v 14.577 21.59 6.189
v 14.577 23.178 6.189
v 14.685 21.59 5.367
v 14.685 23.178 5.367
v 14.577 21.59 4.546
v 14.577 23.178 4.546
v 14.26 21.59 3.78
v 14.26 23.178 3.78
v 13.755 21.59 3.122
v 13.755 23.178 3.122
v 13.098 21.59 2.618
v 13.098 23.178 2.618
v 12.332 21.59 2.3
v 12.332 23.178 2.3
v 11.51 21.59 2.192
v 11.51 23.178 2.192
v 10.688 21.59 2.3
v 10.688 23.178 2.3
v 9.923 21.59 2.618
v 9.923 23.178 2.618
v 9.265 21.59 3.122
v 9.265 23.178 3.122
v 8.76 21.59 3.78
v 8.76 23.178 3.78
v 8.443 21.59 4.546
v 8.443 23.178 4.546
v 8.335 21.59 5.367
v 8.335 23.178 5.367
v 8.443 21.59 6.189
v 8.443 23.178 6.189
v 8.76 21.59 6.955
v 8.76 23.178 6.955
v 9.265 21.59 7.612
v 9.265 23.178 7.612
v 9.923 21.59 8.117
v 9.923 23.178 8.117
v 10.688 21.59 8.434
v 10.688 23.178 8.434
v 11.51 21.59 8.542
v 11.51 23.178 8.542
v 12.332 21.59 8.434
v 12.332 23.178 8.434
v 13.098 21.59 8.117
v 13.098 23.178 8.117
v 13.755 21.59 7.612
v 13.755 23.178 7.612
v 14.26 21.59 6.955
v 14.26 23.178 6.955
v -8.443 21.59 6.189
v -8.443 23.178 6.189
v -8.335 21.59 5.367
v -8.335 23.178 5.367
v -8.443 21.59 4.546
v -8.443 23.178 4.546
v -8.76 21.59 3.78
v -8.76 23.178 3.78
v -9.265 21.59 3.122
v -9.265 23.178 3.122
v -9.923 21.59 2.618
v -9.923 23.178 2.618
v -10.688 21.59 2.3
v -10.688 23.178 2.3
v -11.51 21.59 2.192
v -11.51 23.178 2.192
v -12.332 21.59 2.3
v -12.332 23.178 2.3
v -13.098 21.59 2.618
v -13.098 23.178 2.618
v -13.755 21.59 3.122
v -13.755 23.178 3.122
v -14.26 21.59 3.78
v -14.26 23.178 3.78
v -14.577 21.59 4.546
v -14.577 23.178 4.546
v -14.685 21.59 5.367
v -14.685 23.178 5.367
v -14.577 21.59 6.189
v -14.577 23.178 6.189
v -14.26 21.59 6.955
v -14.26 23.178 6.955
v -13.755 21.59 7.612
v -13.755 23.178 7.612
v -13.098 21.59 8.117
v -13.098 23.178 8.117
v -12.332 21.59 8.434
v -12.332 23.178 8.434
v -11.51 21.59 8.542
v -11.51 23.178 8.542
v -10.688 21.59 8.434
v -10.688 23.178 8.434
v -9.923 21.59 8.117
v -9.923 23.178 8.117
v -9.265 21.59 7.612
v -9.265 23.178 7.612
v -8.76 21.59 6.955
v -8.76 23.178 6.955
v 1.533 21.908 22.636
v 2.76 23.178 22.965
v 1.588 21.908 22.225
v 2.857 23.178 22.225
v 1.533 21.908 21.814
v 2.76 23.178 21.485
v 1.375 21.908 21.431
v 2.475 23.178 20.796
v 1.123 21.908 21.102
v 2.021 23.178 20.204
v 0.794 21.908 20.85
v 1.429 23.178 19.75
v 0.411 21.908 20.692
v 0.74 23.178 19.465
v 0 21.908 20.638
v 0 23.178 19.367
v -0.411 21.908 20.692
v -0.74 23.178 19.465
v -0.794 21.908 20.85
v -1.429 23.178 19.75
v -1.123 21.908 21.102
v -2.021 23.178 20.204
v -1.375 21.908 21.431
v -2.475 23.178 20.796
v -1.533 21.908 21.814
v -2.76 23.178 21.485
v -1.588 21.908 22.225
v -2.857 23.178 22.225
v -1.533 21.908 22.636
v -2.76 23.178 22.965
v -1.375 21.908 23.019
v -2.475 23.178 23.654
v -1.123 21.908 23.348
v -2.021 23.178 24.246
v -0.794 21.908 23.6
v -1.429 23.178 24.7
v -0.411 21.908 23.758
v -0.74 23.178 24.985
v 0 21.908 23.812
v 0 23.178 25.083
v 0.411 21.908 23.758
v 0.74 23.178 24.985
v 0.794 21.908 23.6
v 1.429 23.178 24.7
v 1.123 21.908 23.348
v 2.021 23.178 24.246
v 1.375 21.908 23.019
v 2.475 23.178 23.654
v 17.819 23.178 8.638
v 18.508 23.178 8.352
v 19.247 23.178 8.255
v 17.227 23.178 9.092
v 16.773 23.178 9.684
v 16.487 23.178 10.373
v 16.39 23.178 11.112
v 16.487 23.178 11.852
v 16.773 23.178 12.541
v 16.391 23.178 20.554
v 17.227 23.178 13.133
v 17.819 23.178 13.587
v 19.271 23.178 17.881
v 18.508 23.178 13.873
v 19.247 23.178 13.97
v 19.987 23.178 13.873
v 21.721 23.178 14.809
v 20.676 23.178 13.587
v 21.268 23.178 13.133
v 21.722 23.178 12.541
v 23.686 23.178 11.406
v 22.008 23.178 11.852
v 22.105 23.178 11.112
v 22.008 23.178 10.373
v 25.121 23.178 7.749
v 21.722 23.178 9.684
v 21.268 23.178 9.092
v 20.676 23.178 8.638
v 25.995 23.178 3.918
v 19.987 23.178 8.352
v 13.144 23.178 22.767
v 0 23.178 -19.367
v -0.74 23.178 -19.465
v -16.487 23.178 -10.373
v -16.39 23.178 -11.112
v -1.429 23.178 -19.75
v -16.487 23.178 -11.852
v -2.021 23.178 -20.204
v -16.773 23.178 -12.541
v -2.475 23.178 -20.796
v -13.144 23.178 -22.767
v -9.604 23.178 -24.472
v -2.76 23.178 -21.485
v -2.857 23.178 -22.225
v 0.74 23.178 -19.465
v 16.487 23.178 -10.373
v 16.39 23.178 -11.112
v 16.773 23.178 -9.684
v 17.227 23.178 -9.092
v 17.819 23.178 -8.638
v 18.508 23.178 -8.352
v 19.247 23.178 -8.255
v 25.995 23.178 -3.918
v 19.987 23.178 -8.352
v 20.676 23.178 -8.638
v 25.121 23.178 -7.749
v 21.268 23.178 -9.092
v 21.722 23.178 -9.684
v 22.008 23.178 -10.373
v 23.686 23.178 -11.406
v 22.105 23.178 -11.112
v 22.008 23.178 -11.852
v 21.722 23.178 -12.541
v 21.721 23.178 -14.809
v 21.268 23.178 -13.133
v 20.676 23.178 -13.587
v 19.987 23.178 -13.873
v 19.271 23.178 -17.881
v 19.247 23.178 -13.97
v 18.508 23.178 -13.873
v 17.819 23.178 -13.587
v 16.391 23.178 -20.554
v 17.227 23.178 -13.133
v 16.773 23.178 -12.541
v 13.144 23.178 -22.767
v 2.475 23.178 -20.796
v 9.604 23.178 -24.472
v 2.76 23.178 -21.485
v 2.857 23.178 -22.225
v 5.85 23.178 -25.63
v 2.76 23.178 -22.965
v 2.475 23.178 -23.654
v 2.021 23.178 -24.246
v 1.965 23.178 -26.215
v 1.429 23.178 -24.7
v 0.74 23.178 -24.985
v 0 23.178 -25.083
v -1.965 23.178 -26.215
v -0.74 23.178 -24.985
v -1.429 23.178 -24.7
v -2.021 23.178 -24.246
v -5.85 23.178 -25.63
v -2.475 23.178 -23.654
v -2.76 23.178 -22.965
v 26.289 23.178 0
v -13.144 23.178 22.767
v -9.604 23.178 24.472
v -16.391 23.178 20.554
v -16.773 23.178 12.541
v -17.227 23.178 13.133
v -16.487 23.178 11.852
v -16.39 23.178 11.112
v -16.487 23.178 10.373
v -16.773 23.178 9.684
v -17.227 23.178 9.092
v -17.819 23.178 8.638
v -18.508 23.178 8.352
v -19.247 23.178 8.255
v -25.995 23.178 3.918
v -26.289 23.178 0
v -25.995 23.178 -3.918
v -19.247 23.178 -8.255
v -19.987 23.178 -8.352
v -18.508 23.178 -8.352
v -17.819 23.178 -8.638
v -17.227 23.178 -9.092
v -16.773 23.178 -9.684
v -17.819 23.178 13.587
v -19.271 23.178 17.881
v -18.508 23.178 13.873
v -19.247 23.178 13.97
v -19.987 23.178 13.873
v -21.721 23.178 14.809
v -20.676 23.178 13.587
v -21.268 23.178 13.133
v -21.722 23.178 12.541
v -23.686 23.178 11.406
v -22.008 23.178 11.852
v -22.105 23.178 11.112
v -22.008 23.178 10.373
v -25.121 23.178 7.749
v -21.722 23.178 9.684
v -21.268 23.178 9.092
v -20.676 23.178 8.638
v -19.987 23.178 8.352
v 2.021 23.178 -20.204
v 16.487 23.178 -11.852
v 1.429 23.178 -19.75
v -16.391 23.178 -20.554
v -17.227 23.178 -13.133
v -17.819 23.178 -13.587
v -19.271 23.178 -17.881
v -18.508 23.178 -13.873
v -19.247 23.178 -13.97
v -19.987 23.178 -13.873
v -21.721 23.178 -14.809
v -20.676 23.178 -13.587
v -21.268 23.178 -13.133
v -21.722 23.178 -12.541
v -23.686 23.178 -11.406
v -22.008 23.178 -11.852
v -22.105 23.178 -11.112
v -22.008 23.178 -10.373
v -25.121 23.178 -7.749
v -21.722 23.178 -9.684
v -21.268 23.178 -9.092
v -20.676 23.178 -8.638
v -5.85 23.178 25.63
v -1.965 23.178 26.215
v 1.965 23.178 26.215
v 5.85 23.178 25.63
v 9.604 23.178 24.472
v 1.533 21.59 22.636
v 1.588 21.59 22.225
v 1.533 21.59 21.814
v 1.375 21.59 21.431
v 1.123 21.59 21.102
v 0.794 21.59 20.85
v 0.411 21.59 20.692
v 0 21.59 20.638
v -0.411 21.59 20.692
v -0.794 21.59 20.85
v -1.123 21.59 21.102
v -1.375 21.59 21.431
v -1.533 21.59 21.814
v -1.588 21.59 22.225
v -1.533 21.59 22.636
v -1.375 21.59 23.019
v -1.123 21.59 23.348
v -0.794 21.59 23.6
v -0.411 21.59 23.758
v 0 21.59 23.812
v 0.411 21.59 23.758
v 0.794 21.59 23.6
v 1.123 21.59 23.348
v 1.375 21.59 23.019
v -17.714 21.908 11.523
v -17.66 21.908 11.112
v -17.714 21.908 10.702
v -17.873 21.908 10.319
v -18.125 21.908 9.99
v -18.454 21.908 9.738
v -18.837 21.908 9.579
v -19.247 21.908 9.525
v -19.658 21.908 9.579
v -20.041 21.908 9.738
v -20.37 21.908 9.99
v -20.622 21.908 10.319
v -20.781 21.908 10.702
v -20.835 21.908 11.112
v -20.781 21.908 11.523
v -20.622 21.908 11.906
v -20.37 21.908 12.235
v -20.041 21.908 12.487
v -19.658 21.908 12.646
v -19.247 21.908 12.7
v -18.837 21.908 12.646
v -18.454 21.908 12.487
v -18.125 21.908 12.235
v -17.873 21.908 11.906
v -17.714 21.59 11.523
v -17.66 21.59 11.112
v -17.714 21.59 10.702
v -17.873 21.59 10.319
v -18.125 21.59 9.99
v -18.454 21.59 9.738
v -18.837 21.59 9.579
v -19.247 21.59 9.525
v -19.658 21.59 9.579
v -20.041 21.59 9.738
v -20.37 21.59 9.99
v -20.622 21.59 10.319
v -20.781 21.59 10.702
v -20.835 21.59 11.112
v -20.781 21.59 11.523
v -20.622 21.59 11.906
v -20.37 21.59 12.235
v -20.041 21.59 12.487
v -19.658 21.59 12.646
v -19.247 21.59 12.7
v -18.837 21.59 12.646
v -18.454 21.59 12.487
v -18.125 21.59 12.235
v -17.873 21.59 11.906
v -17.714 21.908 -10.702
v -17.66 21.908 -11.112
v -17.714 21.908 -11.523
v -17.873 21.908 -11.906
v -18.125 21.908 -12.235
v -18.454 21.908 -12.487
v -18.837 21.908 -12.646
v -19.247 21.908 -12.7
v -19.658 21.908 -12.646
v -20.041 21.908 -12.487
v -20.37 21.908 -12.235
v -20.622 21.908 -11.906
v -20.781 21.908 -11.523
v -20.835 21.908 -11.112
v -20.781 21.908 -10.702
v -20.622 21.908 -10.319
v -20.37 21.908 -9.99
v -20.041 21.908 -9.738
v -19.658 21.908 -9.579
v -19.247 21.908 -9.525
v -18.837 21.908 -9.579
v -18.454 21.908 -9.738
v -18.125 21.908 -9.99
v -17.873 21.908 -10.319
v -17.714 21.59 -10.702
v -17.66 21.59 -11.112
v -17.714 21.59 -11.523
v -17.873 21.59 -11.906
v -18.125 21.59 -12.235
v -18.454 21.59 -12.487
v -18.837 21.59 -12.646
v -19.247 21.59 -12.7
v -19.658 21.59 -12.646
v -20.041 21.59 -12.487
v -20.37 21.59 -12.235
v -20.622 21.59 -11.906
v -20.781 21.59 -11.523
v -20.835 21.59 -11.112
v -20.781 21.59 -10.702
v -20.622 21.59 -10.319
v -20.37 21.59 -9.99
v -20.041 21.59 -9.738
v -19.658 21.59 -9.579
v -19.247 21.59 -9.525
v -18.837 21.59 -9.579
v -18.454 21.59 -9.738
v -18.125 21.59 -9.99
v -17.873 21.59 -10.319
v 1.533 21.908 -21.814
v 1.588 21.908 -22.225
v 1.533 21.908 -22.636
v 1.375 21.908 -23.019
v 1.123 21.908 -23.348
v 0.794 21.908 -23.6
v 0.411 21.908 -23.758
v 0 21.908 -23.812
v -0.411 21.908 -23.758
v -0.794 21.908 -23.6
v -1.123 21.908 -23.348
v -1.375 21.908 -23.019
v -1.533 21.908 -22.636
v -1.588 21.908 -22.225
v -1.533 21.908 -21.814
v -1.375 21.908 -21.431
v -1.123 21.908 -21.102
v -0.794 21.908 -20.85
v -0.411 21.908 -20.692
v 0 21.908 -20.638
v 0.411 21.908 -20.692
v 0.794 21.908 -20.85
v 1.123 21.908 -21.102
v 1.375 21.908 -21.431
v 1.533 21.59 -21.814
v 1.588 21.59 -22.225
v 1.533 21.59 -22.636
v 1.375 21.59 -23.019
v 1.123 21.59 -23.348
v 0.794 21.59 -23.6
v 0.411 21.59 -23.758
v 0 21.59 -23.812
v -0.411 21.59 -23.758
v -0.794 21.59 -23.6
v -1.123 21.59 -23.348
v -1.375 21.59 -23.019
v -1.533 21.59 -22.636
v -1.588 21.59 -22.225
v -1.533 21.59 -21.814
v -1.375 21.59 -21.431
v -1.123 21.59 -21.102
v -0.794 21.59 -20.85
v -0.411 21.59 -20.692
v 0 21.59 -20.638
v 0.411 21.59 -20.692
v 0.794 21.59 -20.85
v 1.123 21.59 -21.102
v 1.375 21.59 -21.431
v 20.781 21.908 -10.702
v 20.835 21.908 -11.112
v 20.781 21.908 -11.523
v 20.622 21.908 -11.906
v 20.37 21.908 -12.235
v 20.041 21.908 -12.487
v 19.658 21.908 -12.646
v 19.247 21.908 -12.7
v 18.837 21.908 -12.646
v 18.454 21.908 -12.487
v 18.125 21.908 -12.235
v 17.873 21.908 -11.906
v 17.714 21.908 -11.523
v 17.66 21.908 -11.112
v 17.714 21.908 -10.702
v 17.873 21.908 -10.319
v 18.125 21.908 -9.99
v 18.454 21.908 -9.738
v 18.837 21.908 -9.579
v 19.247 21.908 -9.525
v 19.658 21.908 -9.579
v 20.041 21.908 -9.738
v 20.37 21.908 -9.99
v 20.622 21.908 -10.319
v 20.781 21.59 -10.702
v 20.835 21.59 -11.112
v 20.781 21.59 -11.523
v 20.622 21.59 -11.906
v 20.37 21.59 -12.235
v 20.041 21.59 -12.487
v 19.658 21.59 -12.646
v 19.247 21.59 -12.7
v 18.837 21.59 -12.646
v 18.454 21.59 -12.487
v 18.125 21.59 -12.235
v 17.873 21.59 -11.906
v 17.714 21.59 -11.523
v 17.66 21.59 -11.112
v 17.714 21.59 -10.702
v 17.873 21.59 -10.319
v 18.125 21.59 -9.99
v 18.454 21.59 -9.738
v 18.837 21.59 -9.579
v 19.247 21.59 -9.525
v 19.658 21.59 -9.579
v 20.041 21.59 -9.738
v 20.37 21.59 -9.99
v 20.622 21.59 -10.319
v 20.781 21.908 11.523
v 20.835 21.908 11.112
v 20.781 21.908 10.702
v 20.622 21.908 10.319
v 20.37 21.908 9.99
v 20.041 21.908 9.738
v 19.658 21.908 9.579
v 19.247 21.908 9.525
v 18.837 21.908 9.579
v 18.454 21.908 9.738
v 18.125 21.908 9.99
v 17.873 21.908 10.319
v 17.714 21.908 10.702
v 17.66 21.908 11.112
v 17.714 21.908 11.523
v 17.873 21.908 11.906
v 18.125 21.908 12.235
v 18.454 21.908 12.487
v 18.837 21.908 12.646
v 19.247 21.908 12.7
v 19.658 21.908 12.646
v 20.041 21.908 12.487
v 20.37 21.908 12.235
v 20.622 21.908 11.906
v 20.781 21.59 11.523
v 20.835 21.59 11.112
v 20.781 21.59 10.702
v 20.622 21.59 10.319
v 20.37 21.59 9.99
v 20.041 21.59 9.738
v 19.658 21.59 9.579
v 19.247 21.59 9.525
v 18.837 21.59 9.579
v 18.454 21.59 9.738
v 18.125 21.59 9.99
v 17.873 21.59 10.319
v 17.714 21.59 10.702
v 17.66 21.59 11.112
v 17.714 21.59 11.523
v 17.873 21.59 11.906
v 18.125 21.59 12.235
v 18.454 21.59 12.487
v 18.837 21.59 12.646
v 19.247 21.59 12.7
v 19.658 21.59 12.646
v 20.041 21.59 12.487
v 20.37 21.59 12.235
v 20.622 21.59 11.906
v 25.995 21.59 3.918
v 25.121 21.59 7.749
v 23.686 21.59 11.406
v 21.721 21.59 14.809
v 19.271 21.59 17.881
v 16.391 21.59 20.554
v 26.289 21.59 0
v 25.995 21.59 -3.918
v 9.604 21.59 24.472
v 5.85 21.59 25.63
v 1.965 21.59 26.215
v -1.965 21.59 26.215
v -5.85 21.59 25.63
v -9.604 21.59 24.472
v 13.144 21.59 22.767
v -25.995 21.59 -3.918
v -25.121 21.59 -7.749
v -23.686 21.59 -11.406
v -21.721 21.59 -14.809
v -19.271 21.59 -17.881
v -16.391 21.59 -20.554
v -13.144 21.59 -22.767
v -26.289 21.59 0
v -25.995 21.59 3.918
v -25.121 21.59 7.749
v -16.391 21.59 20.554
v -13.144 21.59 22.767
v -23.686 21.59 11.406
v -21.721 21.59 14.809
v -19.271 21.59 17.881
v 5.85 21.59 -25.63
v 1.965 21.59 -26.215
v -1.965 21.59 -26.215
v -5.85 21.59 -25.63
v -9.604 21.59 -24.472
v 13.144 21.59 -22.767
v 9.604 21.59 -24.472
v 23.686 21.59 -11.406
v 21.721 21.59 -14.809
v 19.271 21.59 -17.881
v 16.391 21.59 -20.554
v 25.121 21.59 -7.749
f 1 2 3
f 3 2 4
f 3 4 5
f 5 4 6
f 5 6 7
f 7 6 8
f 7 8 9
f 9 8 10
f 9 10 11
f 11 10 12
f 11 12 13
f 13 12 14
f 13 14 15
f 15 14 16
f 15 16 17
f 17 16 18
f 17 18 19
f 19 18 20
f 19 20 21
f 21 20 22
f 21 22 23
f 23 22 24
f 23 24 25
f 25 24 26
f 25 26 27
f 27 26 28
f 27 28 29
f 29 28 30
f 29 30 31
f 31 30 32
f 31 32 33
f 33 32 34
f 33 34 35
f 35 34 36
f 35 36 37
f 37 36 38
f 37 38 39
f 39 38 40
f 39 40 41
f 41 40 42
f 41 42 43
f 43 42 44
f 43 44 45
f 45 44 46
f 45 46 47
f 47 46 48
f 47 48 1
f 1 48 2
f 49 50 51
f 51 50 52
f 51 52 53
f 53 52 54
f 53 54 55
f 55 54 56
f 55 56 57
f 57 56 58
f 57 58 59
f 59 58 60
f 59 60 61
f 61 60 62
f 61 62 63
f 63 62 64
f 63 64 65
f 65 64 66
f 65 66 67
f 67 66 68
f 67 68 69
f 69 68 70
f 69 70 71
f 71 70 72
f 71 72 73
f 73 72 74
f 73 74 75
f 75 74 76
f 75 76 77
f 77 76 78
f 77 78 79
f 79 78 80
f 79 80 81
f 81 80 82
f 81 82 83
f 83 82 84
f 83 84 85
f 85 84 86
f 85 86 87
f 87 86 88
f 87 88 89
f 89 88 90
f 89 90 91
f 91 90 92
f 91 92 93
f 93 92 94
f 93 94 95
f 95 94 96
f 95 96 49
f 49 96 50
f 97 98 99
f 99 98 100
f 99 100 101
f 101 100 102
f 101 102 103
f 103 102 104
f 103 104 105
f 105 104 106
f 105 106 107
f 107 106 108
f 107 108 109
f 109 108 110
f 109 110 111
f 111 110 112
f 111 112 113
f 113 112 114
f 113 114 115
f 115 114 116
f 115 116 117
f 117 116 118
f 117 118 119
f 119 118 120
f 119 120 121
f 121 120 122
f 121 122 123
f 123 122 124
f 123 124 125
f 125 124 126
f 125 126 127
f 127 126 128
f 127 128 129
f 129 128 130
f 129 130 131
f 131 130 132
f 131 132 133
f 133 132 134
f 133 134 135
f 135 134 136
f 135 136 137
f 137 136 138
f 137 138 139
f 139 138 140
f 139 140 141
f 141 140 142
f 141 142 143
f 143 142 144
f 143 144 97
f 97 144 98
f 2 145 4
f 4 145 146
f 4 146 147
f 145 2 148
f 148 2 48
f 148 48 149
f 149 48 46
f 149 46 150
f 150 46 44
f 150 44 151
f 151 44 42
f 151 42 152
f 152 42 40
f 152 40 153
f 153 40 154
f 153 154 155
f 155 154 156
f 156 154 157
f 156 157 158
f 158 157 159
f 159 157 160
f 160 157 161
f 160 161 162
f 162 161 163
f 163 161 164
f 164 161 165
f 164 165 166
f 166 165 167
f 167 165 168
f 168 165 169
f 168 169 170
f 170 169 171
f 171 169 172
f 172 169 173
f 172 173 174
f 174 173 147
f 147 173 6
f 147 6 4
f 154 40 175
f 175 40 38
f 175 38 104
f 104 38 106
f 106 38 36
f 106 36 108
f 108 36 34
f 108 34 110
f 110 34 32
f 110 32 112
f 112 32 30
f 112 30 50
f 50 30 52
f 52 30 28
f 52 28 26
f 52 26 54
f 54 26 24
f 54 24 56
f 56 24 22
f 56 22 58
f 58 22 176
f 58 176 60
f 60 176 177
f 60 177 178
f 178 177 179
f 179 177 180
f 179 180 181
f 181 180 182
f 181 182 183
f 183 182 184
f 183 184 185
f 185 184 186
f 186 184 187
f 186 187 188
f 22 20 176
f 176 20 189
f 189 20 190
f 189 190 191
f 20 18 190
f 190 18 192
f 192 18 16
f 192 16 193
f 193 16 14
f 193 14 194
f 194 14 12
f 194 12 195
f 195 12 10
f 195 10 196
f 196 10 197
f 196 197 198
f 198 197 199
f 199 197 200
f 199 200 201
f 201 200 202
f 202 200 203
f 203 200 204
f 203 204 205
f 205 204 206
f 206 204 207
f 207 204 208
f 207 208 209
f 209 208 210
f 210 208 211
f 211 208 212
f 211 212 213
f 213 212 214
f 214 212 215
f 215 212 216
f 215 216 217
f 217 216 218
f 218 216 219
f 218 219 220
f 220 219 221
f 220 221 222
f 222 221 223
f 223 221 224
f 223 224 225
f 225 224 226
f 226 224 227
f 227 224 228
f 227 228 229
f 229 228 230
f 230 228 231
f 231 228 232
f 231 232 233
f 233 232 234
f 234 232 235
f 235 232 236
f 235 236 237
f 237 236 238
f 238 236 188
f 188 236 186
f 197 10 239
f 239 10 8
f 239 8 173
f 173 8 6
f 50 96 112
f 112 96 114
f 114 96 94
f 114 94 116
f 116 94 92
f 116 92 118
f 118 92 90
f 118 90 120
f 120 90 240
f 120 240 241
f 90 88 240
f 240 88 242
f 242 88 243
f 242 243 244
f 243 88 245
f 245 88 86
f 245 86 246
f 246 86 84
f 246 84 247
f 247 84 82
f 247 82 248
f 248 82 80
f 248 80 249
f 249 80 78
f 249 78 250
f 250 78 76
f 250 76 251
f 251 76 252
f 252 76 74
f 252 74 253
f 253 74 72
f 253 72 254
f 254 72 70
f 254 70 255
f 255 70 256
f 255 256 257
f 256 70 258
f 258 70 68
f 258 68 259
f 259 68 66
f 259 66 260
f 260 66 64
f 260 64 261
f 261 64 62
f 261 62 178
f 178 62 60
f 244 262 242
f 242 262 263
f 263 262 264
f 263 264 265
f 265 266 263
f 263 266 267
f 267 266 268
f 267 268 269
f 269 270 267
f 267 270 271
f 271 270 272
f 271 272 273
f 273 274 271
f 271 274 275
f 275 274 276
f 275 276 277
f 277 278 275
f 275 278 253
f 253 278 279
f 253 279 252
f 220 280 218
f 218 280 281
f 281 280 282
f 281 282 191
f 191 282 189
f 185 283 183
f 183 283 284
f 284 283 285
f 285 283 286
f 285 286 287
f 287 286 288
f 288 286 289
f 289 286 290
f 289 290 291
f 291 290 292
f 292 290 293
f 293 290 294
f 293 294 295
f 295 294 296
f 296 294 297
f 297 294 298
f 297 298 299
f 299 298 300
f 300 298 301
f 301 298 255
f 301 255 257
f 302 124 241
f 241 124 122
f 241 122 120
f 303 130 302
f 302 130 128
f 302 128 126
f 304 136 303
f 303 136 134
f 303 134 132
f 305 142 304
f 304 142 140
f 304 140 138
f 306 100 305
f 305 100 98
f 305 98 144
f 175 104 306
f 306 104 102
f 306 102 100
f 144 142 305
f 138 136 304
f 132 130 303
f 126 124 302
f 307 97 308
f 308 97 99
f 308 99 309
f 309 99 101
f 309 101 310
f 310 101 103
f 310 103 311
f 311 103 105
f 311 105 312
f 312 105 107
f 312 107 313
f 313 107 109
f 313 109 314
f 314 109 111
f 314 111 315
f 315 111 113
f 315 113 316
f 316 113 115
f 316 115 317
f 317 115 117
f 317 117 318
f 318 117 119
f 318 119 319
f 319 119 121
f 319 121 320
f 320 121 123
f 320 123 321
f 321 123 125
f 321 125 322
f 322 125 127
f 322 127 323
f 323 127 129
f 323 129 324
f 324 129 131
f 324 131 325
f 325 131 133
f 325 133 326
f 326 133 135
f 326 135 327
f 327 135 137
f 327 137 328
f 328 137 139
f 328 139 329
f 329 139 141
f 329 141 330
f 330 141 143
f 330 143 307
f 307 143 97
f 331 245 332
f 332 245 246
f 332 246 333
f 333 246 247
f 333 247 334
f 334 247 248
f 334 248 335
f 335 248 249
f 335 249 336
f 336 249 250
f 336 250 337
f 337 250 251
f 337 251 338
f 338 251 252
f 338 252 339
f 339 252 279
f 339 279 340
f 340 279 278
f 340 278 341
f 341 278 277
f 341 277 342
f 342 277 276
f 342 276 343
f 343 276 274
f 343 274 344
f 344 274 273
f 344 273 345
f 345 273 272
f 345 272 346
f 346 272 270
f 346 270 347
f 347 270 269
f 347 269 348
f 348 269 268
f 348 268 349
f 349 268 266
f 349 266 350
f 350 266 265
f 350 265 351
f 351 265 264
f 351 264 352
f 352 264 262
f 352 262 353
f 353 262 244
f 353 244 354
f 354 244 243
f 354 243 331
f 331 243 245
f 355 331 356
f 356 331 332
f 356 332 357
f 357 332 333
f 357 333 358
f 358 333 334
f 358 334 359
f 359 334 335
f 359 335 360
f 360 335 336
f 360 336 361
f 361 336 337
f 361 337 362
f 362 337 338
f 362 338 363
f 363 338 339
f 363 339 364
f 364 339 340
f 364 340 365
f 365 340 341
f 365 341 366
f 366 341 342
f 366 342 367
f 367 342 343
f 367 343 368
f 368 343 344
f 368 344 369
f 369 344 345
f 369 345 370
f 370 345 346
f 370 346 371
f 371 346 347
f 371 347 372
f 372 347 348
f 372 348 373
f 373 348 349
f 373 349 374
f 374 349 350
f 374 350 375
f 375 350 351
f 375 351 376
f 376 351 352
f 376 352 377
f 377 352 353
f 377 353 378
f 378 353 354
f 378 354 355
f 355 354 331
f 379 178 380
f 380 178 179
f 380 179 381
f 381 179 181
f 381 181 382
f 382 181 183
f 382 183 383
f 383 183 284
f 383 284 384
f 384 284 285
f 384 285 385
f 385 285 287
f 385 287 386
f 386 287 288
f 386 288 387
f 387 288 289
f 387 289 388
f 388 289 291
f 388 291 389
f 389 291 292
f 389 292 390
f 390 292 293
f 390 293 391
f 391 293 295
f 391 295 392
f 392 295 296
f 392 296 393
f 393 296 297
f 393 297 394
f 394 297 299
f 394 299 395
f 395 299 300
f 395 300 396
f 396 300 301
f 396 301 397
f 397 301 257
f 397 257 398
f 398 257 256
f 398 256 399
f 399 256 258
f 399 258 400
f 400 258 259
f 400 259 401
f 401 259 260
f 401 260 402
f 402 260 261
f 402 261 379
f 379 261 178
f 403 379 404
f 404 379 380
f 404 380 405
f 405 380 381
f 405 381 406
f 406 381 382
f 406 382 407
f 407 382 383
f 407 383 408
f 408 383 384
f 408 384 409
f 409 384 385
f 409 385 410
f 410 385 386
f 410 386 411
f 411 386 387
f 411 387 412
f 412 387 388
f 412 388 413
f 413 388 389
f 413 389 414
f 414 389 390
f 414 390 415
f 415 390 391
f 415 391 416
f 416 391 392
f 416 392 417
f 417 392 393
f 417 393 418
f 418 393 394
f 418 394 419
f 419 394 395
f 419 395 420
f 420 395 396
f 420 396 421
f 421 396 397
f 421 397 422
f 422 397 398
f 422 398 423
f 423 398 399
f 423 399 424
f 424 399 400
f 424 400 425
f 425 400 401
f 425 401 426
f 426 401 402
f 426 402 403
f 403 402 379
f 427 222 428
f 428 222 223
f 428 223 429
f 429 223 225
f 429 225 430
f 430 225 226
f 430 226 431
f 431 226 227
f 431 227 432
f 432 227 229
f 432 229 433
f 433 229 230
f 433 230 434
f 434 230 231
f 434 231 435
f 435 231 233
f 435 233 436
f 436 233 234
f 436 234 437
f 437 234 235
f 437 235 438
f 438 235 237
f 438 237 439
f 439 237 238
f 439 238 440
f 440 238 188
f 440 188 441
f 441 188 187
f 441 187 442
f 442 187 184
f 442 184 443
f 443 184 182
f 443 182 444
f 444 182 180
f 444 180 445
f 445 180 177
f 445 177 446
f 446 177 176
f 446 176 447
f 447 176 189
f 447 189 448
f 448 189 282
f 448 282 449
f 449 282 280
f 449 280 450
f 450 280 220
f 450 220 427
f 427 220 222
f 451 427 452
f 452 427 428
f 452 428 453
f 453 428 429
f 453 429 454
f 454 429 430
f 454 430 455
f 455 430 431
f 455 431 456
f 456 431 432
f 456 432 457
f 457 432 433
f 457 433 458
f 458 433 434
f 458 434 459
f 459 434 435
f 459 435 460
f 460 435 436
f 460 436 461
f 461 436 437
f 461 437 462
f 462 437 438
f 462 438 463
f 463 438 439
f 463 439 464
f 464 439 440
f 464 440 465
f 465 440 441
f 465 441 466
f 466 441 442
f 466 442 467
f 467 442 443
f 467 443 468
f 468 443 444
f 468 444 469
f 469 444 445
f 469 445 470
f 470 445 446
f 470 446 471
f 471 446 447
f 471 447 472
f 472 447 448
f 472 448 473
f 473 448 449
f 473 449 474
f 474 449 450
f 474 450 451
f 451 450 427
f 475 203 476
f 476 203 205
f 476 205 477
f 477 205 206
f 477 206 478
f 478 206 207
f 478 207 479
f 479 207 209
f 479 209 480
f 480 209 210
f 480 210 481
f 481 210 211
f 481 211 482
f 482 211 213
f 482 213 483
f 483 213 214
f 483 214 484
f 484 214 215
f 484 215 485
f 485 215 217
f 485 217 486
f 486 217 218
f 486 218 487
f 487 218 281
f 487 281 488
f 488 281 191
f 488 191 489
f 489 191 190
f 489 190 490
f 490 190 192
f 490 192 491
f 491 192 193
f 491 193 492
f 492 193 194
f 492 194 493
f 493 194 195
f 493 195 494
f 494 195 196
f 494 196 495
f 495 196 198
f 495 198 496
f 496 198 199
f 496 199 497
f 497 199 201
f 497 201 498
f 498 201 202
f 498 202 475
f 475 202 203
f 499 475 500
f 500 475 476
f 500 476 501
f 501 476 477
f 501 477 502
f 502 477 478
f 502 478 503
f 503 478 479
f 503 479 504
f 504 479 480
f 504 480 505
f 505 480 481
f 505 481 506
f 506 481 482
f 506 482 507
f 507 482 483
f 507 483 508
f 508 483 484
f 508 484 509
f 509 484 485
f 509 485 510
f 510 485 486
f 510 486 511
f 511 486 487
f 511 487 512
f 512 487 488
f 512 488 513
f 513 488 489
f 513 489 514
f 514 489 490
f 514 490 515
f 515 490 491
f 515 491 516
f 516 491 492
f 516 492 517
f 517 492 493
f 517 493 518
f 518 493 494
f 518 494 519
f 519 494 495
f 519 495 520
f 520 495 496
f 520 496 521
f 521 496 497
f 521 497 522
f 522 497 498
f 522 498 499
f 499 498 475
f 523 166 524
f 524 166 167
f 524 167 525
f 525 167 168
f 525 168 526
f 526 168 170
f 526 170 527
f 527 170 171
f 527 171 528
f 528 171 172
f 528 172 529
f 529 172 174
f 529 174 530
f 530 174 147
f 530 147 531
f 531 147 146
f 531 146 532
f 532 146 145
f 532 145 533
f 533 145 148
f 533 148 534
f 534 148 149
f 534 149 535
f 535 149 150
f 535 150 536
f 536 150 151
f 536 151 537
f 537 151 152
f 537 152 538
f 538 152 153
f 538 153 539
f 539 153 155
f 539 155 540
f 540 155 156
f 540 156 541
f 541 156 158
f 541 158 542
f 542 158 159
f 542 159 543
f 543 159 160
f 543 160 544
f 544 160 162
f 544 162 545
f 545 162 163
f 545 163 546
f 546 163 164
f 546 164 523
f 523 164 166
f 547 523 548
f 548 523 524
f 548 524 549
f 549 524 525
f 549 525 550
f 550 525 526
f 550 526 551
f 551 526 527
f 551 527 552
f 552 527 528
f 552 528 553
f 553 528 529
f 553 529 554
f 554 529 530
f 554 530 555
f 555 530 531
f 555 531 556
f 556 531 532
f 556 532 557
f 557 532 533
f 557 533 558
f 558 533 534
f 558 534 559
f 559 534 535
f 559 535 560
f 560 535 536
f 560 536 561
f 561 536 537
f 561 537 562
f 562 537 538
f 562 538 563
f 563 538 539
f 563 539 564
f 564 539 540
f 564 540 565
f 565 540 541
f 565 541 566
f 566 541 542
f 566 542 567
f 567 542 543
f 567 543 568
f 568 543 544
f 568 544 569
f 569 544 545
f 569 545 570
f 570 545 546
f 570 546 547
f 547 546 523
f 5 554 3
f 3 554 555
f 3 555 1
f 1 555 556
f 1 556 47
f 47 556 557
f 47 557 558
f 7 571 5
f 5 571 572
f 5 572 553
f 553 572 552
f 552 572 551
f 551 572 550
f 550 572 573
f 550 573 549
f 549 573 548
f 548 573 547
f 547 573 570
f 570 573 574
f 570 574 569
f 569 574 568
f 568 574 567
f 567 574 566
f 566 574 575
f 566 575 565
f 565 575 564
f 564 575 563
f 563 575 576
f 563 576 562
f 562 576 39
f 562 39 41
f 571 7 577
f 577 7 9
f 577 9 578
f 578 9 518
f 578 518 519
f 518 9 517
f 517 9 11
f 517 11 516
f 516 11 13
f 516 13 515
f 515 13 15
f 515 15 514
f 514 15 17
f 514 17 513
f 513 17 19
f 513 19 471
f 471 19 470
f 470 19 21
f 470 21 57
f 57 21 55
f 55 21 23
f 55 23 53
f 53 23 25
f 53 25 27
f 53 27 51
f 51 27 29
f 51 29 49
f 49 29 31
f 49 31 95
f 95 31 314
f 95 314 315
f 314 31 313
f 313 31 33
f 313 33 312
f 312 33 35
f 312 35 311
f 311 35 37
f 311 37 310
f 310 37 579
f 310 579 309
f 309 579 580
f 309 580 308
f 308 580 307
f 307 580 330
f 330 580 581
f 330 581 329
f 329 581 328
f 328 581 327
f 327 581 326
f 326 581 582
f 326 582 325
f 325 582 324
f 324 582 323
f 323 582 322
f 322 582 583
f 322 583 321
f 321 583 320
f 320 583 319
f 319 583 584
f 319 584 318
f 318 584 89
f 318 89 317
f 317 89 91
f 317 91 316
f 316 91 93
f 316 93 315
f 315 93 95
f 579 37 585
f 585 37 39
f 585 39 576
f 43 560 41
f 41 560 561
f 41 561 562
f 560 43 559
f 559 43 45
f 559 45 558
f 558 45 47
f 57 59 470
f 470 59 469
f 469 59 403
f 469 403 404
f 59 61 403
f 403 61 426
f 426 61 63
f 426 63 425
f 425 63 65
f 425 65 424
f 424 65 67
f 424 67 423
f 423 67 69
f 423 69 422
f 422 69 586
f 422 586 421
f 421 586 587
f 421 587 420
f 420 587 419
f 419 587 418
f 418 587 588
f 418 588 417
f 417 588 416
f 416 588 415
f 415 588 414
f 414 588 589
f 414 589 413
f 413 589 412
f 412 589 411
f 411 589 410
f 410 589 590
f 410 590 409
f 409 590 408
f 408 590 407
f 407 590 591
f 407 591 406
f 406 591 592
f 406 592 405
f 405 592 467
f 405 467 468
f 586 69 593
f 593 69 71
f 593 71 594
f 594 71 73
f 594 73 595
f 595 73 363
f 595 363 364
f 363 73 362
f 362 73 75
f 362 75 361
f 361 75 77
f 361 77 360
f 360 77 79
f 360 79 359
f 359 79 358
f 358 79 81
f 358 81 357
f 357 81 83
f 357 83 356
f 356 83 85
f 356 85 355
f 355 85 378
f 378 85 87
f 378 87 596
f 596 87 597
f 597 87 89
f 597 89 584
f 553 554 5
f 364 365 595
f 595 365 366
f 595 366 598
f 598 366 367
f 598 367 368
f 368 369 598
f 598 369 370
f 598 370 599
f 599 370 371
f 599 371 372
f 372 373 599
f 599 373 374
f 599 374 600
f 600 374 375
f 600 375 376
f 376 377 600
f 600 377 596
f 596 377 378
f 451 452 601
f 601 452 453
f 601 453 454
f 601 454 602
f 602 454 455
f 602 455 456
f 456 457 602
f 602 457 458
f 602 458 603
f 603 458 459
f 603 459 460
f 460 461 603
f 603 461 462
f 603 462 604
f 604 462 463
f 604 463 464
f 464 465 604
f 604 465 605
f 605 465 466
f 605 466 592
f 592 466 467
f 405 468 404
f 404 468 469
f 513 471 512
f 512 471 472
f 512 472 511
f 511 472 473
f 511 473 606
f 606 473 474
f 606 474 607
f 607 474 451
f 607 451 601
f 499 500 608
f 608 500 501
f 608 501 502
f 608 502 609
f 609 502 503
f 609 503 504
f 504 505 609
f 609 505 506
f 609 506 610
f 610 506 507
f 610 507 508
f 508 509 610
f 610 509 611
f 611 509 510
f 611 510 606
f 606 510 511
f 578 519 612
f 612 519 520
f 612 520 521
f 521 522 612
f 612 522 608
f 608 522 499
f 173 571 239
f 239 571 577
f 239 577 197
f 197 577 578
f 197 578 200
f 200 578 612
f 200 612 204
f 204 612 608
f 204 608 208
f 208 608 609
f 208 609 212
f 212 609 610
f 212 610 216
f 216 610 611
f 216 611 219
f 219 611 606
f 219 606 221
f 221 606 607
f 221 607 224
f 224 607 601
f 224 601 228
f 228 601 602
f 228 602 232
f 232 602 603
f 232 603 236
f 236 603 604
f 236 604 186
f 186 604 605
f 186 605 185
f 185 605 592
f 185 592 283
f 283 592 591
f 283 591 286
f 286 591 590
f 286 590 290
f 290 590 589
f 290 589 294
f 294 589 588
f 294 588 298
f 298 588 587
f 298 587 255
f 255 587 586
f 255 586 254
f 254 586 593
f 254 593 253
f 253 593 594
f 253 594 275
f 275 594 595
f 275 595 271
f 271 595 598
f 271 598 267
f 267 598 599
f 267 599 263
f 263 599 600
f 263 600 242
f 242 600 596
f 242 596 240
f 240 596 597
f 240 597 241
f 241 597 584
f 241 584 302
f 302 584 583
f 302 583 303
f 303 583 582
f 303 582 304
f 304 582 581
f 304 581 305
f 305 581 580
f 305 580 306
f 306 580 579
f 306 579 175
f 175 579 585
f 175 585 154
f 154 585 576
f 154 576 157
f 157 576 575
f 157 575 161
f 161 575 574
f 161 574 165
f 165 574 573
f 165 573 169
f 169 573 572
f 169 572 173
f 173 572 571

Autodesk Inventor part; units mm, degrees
ref_plane "YZ Plane" through (0, 0, 0) normal (1, 0, 0) x (0, 1, 0)
ref_plane "XZ Plane" through (0, 0, 0) normal (0, 1, 0) x (-1, 0, 0)
sketch "Sketch6" plane through (0, 0, 0) normal (0, 0, 1) x (1, 0, 0)
  line L0 (540.6478, 1219.1491) -> (540.6478, -58.7076) construction
  line L1 (540.6478, -58.7076) -> (-407.4394, -58.7076) construction
  line L2 (-407.4394, -58.7076) -> (-407.4394, 1219.1491) construction
  line L3 (-407.4394, 1219.1491) -> (540.6478, 1219.1491) construction
  point P0 (0, 0)
sketch "Sketch5" plane through (0, 0, 0) normal (0, 0, 1) x (1, 0, 0)
  line L0 (0, 0) -> (0, 142.24)
  line L1 (0, 142.24) -> (50.8, 142.24)
  line L2 (50.8, 142.24) -> (-50.8, 142.24)
  line L3 (50.8, 142.24) -> (45.2986, 0) construction
  line L4 (45.2986, 0) -> (0, 0) construction
  spline S0 degree 2 poles (50.8, 142.24) (45.2986, 0) (0, 0) knots 1 1 1 2 2 2
  line L5 (-50.8, 142.24) -> (-45.2986, 0) construction
  line L6 (-45.2986, 0) -> (0, 0) construction
  spline S1 degree 2 poles (-50.8, 142.24) (-45.2986, 0) (0, 0) knots 1 1 1 2 2 2
  dimension "d20" = 142.24
  dimension "d21" = 50.8
  dimension "d22" = 101.6
revolve "Revolution1" add sketch "Sketch5" angle 360 about axis through (0, 0, 0) along (0, 1, 0) contours L0 L1 S0
ref_plane "Work Plane1" through (0, 21.59, 0) normal (0, 1, 0) x (1, 0, 0)
sketch "Sketch9" plane through (0, 21.59, 0) normal (0, 1, 0) x (1, 0, 0)
  line L0 (-101.4531, 67.0538) -> (104.6936, 67.0538)
  line L1 (104.6936, 67.0538) -> (104.6936, -70.5436)
  line L2 (104.6936, -70.5436) -> (-101.4531, -70.5436)
  line L3 (-101.4531, -70.5436) -> (-101.4531, 67.0538)
  point P0 (0, 0)
extrude "Extrusion2" cut sketch "Sketch9" along normal through all
sketch "Sketch10" plane through (0, 21.59, 0) normal (0, 1, 0) x (1, 0, 0)
  circle A0 centre (0, 0) radius 29.2557
  circle A1 centre (0, 0) radius 26.289
  dimension "d75" = 58.5114
  dimension "d76" = 52.578
extrude "Extrusion3" add sketch "Sketch10" along normal blind 1.5875 contours A1
extrude "Extrusion4" cut sketch "Sketch10" against normal through all contours A0 | A1
sketch "Sketch11" plane through (0, 23.1775, 0) normal (0, 1, 0) x (1, 0, 0)
  line L0 (0, 0) -> (0, 22.225)
  circle A0 centre (0, 22.225) radius 1.5875
  circle A1 centre (-19.2474, 11.1125) radius 1.5875
  circle A2 centre (-19.2474, -11.1125) radius 1.5875
  circle A3 centre (0, -22.225) radius 1.5875
  circle A4 centre (19.2474, -11.1125) radius 1.5875
  circle A5 centre (19.2474, 11.1125) radius 1.5875
  dimension "d81" = 22.225
  dimension "d82" = 3.175
  dimension "d85" = 360
extrude "Extrusion5" cut sketch "Sketch11" against normal blind 1.5875
chamfer "Chamfer1" distance 1.27 angle 45 6 edges at (17.6599, 23.1775, 11.1125) (17.6599, 23.1775, -11.1125) (-1.5875, 23.1775, -22.225) (-20.8349, 23.1775, -11.1125) (-20.8349, 23.1775, 11.1125) (-1.5875, 23.1775, 22.225)
sketch "Sketch12" plane through (0, 23.1775, 0) normal (0, 1, 0) x (1, 0, 0)
  line L0 (0, 0) -> (11.5101, -5.3673)
  line L1 (0, 0) -> (12.7, 0) construction
  circle A0 centre (11.5101, -5.3673) radius 3.175
  circle A1 centre (-11.5101, -5.3673) radius 3.175
  line L2 (0, 0) -> (-11.5101, -5.3673) construction
  dimension "d92" = 12.7
  dimension "d93" = 25
  dimension "d94" = 6.35
  dimension "d95" = 6.35
extrude "Extrusion6" cut sketch "Sketch12" against normal through all
properties part number "foreHullInsert"
